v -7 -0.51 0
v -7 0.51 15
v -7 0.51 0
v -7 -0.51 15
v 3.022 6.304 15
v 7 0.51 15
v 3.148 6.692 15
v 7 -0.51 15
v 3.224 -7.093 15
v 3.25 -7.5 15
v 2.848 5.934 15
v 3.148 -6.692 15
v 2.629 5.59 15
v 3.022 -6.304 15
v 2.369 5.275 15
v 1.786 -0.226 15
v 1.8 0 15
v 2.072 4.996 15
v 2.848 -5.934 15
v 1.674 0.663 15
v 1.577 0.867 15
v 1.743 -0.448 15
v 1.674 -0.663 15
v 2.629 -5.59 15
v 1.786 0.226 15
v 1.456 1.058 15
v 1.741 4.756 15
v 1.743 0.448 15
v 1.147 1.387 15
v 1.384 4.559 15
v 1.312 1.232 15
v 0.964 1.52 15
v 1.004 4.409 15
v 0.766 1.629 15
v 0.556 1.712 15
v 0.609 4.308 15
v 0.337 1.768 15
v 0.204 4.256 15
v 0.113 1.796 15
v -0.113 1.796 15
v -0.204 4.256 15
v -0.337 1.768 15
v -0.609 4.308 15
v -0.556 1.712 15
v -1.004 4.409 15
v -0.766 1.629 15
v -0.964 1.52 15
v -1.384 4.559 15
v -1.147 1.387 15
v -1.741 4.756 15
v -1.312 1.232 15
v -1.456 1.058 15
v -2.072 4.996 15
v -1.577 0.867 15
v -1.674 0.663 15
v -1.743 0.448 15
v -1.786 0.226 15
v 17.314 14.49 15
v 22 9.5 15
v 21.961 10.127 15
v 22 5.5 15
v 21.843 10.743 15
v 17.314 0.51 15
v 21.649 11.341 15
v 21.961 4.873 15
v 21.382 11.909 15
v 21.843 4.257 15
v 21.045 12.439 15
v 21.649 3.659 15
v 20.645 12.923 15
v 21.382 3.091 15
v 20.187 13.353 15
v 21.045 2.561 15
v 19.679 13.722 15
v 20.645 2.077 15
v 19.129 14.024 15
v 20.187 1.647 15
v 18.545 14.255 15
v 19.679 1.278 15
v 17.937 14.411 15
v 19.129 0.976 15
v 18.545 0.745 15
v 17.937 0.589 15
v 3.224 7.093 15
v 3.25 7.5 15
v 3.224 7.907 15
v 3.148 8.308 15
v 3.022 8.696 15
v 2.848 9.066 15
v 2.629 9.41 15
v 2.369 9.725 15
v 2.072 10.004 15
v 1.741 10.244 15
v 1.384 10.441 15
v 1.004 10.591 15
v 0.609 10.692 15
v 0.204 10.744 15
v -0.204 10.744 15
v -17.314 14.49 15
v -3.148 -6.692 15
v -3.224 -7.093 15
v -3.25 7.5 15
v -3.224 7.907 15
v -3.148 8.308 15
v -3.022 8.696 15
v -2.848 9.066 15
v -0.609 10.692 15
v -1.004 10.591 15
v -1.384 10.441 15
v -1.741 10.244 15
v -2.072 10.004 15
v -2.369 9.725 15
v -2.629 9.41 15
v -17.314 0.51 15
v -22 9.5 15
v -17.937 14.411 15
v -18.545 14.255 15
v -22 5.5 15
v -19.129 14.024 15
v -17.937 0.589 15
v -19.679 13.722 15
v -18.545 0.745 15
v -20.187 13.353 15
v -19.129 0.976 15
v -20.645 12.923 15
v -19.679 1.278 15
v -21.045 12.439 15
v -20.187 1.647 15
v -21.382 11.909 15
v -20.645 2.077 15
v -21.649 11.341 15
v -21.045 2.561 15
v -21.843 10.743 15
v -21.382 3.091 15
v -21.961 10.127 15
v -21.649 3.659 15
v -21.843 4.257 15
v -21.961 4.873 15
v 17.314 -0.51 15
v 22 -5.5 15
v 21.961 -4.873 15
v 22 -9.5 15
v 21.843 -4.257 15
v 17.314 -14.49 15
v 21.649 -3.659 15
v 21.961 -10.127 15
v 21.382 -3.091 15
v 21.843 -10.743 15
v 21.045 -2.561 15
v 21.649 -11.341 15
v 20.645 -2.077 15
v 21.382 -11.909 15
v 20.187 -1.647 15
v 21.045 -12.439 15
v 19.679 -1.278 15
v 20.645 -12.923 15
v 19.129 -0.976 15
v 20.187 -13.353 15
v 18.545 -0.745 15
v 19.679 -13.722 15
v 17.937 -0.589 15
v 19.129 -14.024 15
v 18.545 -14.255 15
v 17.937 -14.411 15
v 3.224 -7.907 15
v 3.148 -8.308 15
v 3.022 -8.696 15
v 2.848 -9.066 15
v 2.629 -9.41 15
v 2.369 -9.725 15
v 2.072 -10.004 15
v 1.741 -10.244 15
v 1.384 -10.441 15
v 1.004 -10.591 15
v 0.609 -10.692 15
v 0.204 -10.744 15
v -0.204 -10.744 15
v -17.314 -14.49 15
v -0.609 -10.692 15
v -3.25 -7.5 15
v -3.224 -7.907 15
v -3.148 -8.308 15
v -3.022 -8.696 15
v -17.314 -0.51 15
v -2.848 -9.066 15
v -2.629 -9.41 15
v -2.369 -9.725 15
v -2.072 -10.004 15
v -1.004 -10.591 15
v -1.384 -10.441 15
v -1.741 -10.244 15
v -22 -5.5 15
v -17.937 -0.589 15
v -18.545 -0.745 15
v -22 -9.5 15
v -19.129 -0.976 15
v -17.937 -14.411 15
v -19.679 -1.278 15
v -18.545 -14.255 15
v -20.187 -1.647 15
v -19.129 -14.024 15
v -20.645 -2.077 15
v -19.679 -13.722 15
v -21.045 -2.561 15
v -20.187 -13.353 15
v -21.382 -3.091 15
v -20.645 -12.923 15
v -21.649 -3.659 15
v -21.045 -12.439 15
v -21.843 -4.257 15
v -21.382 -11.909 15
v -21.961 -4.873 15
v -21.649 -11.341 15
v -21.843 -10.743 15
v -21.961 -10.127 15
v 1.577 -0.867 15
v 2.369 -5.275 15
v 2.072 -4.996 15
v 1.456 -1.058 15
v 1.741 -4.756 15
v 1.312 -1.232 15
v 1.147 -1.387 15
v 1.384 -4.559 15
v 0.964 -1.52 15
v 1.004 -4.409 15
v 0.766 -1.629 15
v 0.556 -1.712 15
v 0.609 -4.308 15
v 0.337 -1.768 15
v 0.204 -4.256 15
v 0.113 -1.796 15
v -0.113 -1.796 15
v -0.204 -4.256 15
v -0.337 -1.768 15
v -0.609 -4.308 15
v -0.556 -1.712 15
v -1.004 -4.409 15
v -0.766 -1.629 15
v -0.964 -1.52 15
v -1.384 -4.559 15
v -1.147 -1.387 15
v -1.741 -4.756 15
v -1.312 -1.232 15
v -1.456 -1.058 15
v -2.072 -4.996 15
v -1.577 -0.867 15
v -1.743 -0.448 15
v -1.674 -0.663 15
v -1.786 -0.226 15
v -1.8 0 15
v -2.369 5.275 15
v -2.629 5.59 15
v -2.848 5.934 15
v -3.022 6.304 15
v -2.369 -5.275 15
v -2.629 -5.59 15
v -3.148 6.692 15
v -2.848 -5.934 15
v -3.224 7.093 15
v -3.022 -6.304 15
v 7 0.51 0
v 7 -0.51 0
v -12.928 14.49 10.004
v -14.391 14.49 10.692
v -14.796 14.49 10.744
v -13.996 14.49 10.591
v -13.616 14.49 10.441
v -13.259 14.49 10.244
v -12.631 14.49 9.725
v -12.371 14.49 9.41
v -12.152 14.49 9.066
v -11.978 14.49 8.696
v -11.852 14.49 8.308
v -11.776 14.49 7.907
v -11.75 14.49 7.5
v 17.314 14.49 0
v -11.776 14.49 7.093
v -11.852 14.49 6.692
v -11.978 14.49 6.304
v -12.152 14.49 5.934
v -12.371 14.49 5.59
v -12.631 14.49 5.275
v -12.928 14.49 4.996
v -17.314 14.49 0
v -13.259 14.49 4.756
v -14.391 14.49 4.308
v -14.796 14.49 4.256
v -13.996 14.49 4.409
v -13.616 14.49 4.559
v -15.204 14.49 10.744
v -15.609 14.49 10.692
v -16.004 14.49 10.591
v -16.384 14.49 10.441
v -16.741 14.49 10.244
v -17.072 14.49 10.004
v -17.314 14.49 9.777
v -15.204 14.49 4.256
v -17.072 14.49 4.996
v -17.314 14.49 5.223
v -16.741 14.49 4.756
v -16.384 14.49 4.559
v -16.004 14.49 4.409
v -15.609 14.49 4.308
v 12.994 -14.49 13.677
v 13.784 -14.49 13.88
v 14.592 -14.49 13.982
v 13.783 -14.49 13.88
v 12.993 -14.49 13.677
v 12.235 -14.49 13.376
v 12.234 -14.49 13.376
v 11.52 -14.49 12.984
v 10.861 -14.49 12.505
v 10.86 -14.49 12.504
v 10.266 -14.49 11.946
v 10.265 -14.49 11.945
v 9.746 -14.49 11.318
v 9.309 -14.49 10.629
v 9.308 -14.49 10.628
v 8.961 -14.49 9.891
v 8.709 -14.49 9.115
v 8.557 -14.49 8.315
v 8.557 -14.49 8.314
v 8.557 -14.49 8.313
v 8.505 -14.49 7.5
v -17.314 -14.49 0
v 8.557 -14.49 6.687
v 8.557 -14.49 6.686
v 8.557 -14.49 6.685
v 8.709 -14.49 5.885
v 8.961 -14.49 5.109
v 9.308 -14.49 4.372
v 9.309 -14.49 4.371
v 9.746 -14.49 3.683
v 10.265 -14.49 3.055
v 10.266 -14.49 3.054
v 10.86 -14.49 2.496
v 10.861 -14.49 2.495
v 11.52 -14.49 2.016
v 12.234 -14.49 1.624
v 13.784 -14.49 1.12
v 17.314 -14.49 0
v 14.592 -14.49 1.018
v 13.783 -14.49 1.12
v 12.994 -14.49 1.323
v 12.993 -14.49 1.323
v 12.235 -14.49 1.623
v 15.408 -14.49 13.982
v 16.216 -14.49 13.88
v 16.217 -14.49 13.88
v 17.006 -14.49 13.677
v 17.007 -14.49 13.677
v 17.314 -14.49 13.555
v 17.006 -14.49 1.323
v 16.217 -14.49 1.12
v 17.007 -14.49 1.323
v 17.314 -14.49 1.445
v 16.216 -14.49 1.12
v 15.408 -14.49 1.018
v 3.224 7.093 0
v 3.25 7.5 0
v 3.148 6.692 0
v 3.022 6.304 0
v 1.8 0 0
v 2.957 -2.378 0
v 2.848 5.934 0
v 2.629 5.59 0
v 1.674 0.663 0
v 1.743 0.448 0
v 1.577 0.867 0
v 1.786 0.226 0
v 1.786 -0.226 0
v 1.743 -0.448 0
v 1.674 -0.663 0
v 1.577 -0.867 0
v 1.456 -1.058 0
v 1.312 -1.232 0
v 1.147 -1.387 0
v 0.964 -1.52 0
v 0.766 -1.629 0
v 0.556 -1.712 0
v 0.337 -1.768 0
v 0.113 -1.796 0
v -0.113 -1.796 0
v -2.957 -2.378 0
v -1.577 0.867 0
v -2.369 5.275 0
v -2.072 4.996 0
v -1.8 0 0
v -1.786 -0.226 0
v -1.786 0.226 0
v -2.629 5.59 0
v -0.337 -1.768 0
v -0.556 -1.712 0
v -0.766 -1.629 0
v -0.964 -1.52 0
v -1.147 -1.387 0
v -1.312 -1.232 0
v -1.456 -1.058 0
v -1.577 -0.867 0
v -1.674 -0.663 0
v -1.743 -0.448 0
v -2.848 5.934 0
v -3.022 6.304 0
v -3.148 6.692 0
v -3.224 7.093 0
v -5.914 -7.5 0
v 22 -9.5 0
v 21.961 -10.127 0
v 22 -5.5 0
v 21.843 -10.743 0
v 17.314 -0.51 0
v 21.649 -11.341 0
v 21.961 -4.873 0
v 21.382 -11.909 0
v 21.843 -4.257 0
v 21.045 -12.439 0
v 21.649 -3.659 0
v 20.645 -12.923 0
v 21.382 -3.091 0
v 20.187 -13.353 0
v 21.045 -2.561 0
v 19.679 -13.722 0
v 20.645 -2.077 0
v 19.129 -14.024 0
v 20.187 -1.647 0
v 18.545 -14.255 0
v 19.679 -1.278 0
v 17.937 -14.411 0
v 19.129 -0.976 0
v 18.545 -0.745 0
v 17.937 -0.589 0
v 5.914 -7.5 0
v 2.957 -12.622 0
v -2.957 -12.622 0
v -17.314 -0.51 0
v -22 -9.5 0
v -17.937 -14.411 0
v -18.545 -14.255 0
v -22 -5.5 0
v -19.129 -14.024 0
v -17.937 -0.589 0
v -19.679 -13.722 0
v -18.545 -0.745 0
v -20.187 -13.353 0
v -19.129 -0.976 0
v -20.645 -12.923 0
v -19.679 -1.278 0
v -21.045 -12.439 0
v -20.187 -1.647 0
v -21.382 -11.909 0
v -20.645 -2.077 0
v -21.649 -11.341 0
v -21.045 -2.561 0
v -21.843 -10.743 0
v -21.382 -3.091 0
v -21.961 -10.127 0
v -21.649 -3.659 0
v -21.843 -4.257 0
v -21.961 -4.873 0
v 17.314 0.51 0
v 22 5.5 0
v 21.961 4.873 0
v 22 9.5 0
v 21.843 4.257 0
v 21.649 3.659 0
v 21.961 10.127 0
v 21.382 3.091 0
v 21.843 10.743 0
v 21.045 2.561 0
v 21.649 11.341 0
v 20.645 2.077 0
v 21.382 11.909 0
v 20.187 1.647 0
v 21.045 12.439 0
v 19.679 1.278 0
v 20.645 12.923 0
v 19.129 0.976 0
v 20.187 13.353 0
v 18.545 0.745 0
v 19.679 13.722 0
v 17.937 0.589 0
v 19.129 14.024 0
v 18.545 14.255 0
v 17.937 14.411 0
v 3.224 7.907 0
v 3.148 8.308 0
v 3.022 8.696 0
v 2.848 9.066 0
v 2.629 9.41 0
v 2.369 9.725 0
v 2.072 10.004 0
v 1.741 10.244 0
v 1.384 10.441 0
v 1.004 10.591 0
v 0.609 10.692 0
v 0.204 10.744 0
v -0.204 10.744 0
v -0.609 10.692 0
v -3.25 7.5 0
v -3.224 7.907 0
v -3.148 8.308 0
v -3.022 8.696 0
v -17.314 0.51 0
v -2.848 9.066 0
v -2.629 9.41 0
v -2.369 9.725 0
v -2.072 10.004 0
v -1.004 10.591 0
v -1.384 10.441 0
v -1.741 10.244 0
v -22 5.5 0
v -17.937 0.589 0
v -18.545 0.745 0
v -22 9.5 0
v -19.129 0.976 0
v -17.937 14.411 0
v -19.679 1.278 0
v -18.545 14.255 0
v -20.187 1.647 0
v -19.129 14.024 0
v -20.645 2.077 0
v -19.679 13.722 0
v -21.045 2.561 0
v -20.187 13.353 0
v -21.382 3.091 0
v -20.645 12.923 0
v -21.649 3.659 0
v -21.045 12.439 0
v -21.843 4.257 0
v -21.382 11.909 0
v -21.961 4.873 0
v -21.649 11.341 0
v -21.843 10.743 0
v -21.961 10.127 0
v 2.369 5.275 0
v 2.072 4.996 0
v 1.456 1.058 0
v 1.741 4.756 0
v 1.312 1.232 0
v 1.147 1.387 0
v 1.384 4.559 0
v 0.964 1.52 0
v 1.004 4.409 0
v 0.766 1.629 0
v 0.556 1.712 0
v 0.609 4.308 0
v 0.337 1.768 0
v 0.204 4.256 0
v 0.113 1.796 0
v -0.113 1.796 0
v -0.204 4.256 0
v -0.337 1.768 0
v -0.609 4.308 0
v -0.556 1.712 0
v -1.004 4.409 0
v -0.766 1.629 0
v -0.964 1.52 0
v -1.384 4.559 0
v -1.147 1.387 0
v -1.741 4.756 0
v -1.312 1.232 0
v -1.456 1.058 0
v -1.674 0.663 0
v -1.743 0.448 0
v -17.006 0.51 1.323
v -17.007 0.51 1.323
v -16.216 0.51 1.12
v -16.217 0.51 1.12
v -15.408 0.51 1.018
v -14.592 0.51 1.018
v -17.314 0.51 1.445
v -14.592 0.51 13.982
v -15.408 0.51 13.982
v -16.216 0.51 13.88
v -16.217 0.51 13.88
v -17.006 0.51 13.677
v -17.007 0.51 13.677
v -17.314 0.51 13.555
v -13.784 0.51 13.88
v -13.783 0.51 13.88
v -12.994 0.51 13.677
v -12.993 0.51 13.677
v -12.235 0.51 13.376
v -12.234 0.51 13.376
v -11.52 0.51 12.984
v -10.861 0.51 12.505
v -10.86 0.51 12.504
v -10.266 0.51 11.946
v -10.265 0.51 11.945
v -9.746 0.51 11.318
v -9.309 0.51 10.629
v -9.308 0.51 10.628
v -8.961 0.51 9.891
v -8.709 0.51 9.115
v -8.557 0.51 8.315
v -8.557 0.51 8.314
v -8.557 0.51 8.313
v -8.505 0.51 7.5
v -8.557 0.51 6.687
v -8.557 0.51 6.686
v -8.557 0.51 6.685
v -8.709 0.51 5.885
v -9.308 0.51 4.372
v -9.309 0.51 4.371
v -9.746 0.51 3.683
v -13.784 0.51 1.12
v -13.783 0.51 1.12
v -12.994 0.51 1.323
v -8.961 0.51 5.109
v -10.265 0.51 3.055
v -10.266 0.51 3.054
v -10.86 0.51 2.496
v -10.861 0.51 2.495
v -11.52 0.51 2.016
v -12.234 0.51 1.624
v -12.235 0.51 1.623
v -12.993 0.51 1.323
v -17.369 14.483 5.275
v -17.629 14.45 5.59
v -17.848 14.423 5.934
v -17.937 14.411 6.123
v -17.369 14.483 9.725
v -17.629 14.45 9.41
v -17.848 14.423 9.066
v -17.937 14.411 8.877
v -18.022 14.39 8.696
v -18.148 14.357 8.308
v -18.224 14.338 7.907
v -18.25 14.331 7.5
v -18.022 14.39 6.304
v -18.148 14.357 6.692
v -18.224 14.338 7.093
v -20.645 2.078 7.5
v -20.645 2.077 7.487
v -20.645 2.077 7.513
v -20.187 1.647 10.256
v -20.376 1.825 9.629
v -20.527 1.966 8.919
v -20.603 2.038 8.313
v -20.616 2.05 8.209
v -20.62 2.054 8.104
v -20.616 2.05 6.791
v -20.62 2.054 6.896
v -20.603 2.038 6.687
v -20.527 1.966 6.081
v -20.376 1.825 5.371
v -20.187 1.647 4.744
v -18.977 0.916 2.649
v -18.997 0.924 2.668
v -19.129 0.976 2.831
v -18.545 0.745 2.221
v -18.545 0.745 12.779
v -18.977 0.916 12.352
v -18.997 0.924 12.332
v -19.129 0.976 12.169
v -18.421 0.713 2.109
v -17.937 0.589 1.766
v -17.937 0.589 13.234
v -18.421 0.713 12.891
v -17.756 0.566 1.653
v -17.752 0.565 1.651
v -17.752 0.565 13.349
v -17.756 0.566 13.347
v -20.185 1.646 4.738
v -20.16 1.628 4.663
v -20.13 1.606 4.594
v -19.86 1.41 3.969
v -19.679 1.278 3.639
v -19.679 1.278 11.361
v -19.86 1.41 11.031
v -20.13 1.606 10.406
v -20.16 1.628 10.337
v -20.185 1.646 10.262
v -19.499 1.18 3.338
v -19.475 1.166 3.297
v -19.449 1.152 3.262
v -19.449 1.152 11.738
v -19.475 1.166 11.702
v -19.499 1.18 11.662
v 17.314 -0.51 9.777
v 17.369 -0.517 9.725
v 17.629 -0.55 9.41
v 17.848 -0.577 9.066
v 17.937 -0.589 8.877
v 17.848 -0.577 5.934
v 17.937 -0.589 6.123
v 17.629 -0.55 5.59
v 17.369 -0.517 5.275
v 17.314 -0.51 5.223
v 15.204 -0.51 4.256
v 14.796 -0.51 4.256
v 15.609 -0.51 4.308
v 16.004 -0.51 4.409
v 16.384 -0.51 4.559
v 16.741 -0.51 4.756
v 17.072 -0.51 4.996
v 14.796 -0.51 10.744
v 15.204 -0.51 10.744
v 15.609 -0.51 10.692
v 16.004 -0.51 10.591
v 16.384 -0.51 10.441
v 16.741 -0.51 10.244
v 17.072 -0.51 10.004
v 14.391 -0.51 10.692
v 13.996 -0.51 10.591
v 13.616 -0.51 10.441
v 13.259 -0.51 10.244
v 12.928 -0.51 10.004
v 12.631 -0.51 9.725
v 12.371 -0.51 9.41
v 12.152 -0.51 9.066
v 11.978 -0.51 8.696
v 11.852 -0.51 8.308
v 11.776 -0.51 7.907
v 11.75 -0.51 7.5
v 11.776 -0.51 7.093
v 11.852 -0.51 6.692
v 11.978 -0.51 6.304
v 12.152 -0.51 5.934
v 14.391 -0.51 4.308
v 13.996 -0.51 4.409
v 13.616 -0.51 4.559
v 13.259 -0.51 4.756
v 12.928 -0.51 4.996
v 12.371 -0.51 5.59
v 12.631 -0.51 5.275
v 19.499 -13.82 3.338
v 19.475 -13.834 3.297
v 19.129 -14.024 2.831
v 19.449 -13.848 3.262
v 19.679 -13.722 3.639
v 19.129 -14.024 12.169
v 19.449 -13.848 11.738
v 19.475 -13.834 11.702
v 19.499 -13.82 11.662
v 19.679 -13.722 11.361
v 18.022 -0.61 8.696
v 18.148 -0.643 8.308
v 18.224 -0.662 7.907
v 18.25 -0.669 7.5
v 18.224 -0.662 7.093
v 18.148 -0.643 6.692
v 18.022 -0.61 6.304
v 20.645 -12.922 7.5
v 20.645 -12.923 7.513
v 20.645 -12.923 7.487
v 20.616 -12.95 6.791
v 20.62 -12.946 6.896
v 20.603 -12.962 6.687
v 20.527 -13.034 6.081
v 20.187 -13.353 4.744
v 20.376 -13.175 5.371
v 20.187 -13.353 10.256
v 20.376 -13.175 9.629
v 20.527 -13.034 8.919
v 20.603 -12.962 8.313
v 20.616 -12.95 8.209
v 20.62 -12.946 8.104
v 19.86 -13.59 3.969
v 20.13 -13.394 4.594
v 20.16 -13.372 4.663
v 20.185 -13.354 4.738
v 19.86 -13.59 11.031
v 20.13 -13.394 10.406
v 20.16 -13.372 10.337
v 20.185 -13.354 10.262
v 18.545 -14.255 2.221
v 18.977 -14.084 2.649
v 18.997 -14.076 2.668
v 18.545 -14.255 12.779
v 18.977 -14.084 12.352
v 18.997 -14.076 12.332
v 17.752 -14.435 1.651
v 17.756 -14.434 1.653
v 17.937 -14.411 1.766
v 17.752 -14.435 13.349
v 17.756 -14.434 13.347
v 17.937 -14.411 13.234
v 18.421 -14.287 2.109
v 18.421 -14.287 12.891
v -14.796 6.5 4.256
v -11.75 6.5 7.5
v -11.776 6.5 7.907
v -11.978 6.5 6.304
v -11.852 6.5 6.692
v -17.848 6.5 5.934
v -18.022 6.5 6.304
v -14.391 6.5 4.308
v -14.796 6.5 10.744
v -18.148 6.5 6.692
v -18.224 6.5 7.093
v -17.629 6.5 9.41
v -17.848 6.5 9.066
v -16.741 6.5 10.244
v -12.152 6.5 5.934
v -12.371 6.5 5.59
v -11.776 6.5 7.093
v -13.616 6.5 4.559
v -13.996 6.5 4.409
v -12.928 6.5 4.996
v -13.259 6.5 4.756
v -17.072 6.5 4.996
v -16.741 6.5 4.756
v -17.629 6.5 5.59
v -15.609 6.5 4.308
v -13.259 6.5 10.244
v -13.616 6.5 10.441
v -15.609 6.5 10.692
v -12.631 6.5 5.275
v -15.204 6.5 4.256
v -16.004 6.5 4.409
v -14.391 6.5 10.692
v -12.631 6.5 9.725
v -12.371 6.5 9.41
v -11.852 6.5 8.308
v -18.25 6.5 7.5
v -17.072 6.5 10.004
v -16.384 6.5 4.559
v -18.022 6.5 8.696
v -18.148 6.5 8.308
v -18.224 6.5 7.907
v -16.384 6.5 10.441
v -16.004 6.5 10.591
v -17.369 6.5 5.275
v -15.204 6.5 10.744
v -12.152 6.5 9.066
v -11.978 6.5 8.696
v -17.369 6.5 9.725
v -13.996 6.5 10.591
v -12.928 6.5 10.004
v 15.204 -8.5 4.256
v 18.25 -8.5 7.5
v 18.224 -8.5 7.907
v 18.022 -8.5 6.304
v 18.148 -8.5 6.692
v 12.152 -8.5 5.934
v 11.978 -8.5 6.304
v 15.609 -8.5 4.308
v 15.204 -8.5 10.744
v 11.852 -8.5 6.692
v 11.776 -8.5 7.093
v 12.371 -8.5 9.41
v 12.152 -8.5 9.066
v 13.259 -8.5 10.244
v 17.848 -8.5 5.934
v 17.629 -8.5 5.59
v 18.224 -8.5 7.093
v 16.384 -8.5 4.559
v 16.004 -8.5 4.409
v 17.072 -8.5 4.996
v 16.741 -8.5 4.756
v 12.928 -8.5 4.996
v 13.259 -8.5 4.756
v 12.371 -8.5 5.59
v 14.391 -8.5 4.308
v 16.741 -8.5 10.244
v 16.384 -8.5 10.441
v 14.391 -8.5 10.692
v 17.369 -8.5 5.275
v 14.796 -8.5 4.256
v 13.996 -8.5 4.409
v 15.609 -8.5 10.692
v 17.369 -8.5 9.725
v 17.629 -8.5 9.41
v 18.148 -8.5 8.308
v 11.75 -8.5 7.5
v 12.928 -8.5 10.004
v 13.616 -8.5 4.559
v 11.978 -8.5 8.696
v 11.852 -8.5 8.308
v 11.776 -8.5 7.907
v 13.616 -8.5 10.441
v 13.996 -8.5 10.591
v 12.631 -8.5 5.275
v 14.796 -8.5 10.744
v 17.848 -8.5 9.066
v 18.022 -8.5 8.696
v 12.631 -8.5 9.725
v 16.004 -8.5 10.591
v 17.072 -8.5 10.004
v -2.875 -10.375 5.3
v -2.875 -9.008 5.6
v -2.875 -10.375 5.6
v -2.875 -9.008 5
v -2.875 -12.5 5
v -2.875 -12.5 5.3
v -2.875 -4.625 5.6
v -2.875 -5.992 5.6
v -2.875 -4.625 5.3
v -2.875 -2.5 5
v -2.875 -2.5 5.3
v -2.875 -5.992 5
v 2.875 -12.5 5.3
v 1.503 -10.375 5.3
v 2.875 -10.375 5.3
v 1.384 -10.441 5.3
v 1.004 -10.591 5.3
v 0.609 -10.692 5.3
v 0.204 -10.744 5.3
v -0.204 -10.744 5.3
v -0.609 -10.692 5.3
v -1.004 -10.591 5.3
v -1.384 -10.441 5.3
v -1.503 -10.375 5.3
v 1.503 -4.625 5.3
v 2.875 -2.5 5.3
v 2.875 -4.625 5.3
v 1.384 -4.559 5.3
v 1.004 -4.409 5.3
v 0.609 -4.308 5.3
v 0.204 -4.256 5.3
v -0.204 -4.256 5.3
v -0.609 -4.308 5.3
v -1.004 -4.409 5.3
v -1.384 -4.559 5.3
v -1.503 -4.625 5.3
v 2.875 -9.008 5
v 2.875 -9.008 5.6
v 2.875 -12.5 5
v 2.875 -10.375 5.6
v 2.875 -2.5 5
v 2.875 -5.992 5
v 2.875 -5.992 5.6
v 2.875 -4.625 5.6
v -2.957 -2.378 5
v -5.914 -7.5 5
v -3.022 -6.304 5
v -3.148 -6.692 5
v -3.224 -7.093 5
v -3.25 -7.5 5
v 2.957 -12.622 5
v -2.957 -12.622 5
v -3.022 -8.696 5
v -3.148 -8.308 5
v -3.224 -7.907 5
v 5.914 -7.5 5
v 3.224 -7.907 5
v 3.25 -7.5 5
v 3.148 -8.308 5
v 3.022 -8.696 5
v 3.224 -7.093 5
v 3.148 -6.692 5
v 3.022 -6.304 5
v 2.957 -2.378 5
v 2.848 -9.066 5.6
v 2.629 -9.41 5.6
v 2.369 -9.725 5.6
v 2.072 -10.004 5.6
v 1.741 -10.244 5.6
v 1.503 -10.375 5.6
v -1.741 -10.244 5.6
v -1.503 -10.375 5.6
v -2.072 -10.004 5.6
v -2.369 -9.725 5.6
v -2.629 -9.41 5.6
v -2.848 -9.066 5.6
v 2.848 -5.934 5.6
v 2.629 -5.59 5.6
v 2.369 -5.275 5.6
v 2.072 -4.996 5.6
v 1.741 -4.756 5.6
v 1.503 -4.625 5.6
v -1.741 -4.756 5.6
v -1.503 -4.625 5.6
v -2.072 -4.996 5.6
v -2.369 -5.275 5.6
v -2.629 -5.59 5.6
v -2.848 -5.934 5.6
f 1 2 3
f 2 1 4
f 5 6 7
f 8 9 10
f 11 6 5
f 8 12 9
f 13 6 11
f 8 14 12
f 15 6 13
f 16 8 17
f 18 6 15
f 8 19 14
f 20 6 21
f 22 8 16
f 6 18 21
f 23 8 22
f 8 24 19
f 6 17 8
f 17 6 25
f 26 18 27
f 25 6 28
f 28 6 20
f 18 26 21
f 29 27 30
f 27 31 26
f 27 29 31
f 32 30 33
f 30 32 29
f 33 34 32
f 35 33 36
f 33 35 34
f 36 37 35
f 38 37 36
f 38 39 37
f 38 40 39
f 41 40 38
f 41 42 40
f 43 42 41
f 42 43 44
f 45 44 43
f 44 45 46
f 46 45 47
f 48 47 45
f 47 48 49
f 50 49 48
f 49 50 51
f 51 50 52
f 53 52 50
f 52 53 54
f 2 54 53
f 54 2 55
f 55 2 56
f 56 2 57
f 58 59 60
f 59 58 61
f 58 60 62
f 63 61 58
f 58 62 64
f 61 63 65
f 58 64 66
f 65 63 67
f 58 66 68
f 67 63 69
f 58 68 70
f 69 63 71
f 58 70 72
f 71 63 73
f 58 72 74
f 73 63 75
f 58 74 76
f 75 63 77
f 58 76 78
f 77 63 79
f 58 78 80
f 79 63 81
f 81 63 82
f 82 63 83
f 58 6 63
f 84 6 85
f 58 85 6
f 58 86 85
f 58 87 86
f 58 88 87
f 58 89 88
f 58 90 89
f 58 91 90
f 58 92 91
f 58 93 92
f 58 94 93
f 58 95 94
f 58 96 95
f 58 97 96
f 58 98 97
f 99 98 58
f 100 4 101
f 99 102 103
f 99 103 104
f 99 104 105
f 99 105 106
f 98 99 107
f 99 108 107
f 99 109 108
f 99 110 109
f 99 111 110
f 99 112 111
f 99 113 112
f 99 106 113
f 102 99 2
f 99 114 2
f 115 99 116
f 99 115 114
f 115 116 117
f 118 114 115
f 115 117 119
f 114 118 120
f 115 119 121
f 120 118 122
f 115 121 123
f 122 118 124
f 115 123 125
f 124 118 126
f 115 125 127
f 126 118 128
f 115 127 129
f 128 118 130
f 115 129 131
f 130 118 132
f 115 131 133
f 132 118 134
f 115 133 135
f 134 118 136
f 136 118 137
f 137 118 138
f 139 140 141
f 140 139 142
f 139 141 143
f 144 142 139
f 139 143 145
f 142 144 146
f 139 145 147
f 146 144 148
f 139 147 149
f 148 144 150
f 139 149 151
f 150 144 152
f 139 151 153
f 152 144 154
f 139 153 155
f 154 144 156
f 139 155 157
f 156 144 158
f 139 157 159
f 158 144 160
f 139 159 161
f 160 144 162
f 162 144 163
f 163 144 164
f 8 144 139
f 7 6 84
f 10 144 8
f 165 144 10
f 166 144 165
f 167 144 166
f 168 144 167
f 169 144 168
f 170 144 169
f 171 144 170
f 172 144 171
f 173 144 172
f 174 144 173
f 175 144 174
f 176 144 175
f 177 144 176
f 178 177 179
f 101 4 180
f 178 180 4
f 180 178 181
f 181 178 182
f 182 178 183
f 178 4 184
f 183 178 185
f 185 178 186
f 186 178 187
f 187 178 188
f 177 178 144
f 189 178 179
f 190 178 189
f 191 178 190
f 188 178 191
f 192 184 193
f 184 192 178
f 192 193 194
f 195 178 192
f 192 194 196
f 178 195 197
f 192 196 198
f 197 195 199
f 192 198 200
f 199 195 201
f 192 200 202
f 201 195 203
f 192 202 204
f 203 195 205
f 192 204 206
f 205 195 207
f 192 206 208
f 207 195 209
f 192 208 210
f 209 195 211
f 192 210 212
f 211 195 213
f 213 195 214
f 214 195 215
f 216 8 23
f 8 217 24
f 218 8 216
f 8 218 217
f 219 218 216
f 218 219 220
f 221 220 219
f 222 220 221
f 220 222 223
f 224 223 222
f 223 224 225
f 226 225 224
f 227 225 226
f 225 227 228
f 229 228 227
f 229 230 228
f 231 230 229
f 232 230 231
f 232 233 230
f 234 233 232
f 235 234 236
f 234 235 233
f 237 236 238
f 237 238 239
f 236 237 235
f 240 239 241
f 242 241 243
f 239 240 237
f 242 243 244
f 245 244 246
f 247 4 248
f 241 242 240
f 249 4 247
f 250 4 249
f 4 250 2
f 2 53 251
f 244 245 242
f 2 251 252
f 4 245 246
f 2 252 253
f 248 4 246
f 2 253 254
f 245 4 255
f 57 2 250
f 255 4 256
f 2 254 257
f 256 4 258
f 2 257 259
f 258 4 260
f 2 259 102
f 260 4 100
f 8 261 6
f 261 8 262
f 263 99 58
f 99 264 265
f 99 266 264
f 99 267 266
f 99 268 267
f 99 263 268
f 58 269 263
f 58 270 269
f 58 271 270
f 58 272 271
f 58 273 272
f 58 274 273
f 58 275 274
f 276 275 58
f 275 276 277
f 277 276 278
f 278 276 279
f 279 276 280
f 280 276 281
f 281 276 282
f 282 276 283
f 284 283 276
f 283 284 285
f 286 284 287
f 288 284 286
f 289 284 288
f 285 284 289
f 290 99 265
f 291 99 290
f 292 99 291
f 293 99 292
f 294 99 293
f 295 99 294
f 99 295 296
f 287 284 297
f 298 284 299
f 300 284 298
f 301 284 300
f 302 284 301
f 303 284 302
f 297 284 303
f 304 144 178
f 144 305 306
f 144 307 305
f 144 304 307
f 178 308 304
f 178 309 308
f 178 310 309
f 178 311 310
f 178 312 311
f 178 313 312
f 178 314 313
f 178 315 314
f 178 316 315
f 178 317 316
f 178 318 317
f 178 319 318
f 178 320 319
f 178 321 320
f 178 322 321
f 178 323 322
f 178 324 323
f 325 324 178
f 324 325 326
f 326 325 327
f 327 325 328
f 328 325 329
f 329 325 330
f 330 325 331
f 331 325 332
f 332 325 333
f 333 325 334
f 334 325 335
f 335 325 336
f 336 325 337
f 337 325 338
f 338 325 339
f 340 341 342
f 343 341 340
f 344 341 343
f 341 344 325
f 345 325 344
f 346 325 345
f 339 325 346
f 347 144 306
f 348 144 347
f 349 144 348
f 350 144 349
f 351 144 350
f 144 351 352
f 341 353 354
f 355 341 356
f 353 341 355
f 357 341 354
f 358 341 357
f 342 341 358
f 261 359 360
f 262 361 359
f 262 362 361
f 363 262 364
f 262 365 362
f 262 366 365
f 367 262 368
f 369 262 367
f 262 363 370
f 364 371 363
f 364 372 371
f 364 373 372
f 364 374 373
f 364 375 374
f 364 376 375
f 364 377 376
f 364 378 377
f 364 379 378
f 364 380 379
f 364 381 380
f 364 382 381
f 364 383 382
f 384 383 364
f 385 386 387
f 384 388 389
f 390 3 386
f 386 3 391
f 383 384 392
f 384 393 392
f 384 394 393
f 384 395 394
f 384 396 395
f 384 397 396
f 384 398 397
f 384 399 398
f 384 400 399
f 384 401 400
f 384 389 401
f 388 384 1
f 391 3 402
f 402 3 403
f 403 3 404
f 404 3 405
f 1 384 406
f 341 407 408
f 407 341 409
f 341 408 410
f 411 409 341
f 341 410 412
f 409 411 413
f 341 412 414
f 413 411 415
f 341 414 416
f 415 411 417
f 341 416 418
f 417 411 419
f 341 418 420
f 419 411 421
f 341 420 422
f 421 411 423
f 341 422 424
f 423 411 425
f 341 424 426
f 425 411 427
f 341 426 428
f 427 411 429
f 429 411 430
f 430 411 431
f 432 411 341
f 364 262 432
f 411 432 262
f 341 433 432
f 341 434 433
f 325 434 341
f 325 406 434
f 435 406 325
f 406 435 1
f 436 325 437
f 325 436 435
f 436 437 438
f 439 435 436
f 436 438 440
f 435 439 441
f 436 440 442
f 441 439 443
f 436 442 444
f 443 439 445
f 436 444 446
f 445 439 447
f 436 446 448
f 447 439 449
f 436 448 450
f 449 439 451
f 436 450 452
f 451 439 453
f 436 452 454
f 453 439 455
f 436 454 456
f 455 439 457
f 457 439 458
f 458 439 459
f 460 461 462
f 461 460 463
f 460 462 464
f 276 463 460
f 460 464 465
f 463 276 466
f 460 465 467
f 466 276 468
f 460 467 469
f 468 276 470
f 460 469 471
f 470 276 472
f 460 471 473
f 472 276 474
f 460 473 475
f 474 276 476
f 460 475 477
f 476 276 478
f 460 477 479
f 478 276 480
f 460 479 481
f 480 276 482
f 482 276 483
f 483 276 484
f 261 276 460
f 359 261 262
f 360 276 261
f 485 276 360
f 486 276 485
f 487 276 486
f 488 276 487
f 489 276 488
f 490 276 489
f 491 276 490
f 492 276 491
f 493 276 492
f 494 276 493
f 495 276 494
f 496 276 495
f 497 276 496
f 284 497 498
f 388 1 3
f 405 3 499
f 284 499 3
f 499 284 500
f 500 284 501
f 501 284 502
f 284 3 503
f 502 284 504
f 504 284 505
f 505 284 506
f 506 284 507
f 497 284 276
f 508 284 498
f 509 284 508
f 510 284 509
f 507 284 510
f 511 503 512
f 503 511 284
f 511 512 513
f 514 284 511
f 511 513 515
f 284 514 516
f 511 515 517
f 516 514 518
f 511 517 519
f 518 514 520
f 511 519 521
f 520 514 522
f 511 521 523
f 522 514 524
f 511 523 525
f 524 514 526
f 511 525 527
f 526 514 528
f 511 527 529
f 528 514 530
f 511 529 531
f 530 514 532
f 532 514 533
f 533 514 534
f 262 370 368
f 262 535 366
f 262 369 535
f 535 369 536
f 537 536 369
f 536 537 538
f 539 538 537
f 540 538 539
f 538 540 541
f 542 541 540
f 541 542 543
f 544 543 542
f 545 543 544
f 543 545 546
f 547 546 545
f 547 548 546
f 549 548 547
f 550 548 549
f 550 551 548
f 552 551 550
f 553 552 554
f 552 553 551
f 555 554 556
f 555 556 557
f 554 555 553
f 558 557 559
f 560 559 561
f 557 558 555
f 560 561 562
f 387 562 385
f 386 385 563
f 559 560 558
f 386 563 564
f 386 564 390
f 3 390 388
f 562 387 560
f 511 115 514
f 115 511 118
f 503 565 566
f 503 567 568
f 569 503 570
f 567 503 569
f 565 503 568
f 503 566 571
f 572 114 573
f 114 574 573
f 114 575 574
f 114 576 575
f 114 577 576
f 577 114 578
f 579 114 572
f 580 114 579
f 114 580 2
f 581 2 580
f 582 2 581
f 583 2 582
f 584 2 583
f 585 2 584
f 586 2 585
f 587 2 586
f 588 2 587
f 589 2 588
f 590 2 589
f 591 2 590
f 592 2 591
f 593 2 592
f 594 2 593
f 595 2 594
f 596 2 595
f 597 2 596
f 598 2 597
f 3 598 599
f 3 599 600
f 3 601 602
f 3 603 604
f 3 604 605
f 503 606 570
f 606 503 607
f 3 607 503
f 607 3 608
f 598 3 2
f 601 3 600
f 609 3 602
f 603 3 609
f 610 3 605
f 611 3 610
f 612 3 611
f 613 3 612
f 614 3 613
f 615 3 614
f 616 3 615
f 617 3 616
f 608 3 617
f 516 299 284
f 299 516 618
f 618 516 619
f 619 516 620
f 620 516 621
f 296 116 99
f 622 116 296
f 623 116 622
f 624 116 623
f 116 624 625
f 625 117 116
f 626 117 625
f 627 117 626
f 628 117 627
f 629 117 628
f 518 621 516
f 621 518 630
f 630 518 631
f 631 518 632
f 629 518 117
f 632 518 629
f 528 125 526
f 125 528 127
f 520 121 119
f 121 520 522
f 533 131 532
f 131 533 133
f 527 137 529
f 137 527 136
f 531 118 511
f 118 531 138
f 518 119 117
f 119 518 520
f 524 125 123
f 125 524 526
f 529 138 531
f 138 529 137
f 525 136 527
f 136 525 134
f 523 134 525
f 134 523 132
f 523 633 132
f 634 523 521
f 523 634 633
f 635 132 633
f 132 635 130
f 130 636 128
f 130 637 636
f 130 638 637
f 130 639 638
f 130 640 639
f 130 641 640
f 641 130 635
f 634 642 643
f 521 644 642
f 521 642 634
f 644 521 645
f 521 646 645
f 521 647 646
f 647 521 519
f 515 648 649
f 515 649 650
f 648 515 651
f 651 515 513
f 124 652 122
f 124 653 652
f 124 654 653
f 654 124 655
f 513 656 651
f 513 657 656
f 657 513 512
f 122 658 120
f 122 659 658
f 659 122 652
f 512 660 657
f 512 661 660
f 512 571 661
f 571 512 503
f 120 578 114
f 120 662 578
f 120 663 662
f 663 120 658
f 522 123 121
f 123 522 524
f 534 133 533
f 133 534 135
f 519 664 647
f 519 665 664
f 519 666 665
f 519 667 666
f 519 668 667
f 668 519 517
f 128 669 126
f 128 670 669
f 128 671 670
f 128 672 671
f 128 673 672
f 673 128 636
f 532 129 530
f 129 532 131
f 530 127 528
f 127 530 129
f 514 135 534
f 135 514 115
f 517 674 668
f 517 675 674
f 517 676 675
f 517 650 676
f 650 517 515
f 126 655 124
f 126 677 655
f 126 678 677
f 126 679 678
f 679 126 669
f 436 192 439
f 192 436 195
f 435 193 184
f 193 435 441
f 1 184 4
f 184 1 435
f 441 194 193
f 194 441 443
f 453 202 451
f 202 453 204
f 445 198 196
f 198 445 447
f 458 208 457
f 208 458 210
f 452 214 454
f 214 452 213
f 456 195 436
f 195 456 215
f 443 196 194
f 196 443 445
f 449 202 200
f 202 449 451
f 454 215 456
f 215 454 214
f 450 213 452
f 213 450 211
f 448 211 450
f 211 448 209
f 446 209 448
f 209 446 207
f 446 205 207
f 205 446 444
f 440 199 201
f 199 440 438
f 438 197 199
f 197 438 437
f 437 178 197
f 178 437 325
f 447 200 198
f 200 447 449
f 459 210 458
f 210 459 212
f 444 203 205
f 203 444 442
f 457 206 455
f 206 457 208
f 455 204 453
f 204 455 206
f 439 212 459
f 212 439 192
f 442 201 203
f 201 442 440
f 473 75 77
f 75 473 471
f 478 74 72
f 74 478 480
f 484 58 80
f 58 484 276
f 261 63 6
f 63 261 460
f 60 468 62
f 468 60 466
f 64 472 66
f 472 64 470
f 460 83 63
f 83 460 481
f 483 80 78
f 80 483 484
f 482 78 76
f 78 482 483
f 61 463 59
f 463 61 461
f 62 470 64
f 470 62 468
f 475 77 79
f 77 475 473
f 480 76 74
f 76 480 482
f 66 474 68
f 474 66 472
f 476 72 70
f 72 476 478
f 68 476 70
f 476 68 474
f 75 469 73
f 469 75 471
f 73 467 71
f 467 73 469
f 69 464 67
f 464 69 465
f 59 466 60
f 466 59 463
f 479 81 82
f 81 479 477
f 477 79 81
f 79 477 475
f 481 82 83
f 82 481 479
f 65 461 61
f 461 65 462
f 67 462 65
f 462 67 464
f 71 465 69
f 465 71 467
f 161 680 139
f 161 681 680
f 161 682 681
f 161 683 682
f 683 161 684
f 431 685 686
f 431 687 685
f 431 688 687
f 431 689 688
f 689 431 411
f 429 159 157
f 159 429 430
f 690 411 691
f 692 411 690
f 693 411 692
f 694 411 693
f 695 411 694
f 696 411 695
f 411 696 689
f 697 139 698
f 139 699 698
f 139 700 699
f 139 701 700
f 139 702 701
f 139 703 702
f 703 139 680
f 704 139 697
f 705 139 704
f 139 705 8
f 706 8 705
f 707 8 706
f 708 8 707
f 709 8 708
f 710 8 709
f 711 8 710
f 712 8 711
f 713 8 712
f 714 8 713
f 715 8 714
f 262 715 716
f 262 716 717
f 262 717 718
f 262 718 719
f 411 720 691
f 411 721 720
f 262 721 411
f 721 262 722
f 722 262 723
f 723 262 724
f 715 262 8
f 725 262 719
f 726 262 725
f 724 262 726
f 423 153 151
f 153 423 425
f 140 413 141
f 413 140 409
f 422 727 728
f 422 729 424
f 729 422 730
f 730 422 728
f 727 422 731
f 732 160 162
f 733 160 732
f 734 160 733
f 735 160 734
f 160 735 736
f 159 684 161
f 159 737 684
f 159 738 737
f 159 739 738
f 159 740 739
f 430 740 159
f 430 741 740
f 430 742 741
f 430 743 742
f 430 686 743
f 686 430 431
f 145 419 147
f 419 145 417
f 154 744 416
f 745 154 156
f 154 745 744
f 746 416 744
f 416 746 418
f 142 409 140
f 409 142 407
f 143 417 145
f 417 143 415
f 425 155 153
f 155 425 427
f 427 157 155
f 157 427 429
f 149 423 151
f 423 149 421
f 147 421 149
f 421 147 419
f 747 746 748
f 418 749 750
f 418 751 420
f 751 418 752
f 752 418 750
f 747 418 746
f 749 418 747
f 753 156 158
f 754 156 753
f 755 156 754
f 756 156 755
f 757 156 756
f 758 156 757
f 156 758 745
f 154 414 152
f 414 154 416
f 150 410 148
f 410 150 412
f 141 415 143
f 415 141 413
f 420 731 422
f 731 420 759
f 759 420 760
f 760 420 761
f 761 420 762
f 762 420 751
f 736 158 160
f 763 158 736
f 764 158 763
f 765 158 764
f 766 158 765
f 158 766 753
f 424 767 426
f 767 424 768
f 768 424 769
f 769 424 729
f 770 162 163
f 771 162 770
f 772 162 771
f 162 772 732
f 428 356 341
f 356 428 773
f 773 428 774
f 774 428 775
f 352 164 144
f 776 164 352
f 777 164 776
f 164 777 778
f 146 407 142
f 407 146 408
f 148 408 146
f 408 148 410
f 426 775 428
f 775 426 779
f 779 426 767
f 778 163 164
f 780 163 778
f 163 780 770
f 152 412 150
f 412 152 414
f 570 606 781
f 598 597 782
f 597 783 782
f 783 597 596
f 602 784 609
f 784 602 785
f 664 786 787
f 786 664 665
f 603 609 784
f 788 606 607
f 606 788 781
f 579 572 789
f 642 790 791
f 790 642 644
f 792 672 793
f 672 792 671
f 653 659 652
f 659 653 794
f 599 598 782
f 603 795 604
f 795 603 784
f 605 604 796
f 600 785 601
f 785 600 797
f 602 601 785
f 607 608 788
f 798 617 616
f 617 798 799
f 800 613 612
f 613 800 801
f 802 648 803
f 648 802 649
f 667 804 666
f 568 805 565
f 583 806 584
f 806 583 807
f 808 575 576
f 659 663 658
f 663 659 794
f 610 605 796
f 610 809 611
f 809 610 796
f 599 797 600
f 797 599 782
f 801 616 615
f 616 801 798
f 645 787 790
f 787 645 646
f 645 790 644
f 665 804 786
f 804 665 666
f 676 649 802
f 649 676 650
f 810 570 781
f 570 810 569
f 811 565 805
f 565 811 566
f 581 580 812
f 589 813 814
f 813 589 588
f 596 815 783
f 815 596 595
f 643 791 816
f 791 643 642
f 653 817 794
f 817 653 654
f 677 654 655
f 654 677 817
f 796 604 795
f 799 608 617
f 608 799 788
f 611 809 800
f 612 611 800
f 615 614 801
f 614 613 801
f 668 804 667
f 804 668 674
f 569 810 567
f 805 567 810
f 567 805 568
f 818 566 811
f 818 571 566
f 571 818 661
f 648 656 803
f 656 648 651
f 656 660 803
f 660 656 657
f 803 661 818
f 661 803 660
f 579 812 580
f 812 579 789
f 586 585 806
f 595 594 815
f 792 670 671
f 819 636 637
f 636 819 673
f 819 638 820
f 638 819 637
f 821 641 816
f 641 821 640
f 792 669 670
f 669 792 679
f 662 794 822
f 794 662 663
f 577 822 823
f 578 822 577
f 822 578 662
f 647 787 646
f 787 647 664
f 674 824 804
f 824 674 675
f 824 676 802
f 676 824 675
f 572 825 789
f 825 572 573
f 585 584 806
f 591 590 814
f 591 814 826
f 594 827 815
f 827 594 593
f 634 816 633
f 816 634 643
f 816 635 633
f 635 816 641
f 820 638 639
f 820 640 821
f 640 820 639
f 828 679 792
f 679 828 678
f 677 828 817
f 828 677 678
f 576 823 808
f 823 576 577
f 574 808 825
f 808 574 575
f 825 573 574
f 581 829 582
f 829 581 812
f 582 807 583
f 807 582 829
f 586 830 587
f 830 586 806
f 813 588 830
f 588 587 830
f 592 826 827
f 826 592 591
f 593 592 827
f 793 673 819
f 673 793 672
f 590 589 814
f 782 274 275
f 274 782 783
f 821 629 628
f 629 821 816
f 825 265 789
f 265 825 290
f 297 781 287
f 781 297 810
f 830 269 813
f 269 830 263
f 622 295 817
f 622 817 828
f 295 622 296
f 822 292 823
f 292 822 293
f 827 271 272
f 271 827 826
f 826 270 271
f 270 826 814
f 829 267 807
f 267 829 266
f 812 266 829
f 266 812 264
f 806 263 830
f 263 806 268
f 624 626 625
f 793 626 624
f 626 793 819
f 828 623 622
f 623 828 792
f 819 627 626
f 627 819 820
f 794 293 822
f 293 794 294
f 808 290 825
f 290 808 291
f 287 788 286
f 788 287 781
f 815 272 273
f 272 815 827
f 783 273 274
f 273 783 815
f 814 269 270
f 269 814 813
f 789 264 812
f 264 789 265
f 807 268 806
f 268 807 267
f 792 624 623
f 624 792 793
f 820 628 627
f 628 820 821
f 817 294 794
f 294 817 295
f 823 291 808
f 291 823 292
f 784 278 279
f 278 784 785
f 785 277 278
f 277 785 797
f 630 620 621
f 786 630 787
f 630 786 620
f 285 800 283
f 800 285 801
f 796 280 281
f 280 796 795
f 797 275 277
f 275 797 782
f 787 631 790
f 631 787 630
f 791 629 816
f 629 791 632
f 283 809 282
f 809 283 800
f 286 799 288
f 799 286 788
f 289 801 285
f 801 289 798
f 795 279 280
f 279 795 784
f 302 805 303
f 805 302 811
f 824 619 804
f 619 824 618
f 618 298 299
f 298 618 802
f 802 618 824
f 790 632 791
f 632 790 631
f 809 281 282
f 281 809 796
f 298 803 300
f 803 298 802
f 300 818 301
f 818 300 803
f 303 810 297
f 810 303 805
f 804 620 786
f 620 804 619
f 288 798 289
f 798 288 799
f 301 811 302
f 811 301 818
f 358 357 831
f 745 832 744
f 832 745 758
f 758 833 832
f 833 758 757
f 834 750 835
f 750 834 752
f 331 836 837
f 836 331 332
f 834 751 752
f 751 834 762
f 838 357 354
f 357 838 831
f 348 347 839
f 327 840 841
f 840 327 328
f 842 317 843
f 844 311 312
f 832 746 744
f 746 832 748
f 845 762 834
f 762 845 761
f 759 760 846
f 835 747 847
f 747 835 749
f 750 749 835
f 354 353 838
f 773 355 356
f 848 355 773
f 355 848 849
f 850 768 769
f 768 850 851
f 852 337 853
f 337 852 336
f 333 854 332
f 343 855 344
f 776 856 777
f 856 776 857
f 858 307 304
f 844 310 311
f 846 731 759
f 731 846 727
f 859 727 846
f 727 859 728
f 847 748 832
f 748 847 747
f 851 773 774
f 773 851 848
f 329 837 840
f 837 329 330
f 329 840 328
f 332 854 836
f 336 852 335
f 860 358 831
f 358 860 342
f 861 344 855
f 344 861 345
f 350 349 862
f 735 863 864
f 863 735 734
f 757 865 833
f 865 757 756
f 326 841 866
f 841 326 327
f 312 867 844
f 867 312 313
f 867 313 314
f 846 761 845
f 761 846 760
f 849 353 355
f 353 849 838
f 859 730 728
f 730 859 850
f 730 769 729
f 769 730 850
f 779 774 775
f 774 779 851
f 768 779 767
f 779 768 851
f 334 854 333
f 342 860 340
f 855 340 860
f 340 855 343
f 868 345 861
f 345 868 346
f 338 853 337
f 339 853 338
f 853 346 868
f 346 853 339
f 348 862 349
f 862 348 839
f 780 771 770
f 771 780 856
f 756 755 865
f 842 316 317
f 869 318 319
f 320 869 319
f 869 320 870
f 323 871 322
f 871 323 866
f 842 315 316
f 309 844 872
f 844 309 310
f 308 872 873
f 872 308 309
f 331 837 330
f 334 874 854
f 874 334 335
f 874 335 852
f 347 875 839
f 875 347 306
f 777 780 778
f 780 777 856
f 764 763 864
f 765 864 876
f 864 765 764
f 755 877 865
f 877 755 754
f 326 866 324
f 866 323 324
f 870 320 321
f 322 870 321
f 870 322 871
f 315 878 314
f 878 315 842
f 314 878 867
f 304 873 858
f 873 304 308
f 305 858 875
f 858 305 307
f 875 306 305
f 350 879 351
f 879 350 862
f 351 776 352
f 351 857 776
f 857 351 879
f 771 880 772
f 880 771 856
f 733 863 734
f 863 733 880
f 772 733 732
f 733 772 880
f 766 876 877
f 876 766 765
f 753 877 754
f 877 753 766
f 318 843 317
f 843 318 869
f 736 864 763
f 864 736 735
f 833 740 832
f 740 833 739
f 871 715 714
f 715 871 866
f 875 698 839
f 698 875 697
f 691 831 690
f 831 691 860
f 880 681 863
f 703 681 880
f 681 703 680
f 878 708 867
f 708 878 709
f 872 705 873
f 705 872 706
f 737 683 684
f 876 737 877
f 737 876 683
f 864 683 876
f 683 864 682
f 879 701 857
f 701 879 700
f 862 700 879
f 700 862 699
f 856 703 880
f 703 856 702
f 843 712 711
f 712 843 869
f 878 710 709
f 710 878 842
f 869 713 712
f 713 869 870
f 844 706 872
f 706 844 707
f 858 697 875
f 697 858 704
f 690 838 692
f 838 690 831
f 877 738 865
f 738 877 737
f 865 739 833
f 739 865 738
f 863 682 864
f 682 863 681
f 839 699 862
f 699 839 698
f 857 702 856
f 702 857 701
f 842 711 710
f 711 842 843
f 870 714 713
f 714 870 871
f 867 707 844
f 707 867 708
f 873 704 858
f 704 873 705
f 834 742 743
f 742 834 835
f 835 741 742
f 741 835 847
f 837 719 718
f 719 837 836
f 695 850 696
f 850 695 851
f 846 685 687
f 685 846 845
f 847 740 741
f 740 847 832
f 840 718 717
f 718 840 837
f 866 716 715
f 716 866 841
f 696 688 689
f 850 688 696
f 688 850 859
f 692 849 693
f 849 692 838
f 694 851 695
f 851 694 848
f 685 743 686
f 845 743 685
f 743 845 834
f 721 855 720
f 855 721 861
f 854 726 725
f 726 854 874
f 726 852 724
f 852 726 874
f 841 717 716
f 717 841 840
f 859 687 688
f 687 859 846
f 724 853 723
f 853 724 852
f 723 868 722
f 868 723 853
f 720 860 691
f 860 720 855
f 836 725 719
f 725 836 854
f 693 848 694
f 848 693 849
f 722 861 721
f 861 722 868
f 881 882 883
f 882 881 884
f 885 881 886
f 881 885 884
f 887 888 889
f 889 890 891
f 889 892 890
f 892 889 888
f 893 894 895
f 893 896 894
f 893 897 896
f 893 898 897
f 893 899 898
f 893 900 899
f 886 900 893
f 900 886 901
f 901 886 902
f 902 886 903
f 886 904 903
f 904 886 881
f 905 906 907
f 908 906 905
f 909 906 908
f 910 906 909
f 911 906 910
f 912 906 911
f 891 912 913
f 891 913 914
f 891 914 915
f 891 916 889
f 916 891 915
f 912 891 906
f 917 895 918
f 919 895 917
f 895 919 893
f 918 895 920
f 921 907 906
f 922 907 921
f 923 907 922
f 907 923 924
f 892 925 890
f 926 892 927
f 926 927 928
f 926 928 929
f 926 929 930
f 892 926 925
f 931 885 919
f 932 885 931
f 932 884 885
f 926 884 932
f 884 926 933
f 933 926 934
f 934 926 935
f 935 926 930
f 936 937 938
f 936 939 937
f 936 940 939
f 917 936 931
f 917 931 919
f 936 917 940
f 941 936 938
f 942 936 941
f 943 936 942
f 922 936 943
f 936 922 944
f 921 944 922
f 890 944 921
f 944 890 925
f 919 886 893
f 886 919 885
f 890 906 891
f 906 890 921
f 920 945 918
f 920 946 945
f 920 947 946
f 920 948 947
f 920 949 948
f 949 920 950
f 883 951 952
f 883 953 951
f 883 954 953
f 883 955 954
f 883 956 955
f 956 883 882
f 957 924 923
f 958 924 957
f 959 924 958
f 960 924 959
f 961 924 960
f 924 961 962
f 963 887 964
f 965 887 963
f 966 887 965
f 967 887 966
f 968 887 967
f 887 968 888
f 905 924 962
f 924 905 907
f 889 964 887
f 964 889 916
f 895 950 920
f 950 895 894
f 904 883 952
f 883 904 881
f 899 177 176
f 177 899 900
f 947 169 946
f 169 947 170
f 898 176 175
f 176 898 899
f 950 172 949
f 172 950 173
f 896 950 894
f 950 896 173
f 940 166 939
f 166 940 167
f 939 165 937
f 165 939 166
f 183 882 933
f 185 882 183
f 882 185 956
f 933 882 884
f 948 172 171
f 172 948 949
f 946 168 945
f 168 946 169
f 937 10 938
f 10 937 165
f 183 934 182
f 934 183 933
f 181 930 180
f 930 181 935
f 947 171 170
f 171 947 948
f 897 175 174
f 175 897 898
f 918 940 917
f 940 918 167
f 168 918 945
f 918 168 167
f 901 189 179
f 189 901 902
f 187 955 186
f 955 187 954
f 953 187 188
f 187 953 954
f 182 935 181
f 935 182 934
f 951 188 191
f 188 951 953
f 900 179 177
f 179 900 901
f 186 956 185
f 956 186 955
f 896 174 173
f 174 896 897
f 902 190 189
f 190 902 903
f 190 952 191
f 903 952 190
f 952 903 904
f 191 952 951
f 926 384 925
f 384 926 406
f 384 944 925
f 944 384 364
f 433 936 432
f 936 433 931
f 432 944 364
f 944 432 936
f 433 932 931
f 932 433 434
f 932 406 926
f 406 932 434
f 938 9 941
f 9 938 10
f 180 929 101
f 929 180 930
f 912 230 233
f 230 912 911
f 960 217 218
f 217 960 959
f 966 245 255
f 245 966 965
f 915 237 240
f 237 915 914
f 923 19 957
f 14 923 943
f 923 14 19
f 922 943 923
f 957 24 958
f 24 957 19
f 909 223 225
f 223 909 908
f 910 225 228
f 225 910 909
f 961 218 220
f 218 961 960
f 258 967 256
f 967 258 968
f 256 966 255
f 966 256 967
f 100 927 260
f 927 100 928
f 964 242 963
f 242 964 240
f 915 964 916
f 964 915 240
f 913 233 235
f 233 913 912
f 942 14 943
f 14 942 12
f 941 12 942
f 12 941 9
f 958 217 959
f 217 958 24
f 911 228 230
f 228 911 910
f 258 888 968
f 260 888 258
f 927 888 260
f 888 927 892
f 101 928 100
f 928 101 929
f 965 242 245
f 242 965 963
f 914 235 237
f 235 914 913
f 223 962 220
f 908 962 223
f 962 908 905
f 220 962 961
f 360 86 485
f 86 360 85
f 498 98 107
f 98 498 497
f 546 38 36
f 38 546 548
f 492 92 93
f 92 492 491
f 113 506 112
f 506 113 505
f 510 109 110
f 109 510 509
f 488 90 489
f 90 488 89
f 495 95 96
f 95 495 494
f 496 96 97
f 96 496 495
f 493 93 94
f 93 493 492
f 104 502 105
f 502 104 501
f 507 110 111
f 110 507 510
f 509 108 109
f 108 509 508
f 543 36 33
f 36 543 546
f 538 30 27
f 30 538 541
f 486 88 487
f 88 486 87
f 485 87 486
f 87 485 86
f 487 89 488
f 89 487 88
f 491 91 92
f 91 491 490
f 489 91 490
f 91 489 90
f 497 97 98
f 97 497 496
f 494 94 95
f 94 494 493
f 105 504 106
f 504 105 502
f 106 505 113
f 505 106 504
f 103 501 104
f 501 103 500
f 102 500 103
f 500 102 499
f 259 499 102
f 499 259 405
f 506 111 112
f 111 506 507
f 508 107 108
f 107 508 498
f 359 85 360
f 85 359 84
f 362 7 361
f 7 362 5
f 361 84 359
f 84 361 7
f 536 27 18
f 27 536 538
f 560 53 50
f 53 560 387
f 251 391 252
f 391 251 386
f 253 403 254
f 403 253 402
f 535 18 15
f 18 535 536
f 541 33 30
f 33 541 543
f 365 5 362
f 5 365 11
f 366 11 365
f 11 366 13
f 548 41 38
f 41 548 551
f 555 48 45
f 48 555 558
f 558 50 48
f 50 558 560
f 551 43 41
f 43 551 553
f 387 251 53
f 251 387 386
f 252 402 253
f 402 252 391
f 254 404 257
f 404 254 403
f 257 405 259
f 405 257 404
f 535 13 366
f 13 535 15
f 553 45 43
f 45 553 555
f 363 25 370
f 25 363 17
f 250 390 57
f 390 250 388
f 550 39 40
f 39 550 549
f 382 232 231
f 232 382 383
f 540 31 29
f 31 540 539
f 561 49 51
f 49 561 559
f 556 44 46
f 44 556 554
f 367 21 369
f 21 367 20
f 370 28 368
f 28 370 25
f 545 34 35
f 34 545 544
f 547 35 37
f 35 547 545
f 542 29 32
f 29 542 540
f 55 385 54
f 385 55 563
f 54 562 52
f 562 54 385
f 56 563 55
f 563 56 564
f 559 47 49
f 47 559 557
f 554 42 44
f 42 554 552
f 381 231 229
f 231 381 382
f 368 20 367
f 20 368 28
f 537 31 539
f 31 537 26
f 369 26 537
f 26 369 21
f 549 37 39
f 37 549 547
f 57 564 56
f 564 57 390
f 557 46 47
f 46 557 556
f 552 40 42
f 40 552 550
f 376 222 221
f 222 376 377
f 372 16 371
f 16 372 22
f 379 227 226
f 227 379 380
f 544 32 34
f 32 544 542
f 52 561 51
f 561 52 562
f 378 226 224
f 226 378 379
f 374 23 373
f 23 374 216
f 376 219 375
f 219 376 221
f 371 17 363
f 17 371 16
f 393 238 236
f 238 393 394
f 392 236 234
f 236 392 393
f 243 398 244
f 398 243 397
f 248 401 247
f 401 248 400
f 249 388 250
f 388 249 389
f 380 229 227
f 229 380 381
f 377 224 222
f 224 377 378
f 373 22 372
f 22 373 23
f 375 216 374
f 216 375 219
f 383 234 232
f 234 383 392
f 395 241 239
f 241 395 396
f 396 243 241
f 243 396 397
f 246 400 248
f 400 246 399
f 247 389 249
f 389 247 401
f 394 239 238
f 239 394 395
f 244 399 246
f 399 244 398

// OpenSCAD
$fn = 50;


difference() {
	union() {
		hull() {
			translate(v = [-2.0000000000, 9.5000000000, 0]) {
				cylinder(h = 15, r = 5);
			}
			translate(v = [2.0000000000, 9.5000000000, 0]) {
				cylinder(h = 15, r = 5);
			}
			translate(v = [-2.0000000000, -9.5000000000, 0]) {
				cylinder(h = 15, r = 5);
			}
			translate(v = [2.0000000000, -9.5000000000, 0]) {
				cylinder(h = 15, r = 5);
			}
		}
		translate(v = [-7.5000000000, 7.5000000000, 0]) {
			hull() {
				translate(v = [-9.5000000000, 2.0000000000, 0]) {
					cylinder(h = 15, r = 5);
				}
				translate(v = [9.5000000000, 2.0000000000, 0]) {
					cylinder(h = 15, r = 5);
				}
				translate(v = [-9.5000000000, -2.0000000000, 0]) {
					cylinder(h = 15, r = 5);
				}
				translate(v = [9.5000000000, -2.0000000000, 0]) {
					cylinder(h = 15, r = 5);
				}
			}
		}
		translate(v = [-7.5000000000, -7.5000000000, 0]) {
			hull() {
				translate(v = [-9.5000000000, 2.0000000000, 0]) {
					cylinder(h = 15, r = 5);
				}
				translate(v = [9.5000000000, 2.0000000000, 0]) {
					cylinder(h = 15, r = 5);
				}
				translate(v = [-9.5000000000, -2.0000000000, 0]) {
					cylinder(h = 15, r = 5);
				}
				translate(v = [9.5000000000, -2.0000000000, 0]) {
					cylinder(h = 15, r = 5);
				}
			}
		}
		translate(v = [7.5000000000, 7.5000000000, 0]) {
			hull() {
				translate(v = [-9.5000000000, 2.0000000000, 0]) {
					cylinder(h = 15, r = 5);
				}
				translate(v = [9.5000000000, 2.0000000000, 0]) {
					cylinder(h = 15, r = 5);
				}
				translate(v = [-9.5000000000, -2.0000000000, 0]) {
					cylinder(h = 15, r = 5);
				}
				translate(v = [9.5000000000, -2.0000000000, 0]) {
					cylinder(h = 15, r = 5);
				}
			}
		}
		translate(v = [7.5000000000, -7.5000000000, 0]) {
			hull() {
				translate(v = [-9.5000000000, 2.0000000000, 0]) {
					cylinder(h = 15, r = 5);
				}
				translate(v = [9.5000000000, 2.0000000000, 0]) {
					cylinder(h = 15, r = 5);
				}
				translate(v = [-9.5000000000, -2.0000000000, 0]) {
					cylinder(h = 15, r = 5);
				}
				translate(v = [9.5000000000, -2.0000000000, 0]) {
					cylinder(h = 15, r = 5);
				}
			}
		}
	}
	union() {
		translate(v = [-15.0000000000, 0.5000000000, 7.5000000000]) {
			rotate(a = [90, 0, 0]) {
				difference() {
					union() {
						#translate(v = [0, 0, -14.0000000000]) {
							cylinder(h = 14, r = 2.2500000000);
						}
						#translate(v = [0, 0, -6]) {
							cylinder(h = 6, r1 = 3.2500000000, r2 = 6.5000000000);
						}
						#translate(v = [0, 0, -14.0000000000]) {
							cylinder(h = 14, r = 3.2500000000);
						}
						#translate(v = [0, 0, -14.0000000000]) {
							cylinder(h = 14, r = 2.2500000000);
						}
					}
					union();
				}
			}
		}
		translate(v = [15.0000000000, -14.5000000000, 7.5000000000]) {
			rotate(a = [90, 0, 0]) {
				difference() {
					union() {
						#translate(v = [0, 0, -14.0000000000]) {
							cylinder(h = 14, r = 2.2500000000);
						}
						#translate(v = [0, 0, -6]) {
							cylinder(h = 6, r1 = 3.2500000000, r2 = 6.5000000000);
						}
						#translate(v = [0, 0, -14.0000000000]) {
							cylinder(h = 14, r = 3.2500000000);
						}
						#translate(v = [0, 0, -14.0000000000]) {
							cylinder(h = 14, r = 2.2500000000);
						}
					}
					union();
				}
			}
		}
		translate(v = [0.0000000000, -7.5000000000, 0]) {
			rotate(a = [0, 0, 0]) {
				difference() {
					union() {
						#translate(v = [-2.8750000000, -5.0000000000, -0.3000000000]) {
							cube(size = [5.7500000000, 10, 0.3000000000]);
						}
						#translate(v = [-2.8750000000, -2.8750000000, -0.6000000000]) {
							cube(size = [5.7500000000, 5.7500000000, 0.3000000000]);
						}
						#translate(v = [-2.8750000000, -5.0000000000, 5]) {
							cube(size = [5.7500000000, 10, 0.3000000000]);
						}
						#translate(v = [-2.8750000000, -2.8750000000, 5.3000000000]) {
							cube(size = [5.7500000000, 5.7500000000, 0.3000000000]);
						}
						#translate(v = [0, 0, -100.0000000000]) {
							cylinder(h = 200, r = 3.2500000000);
						}
						#linear_extrude(height = 5) {
							polygon(points = [[5.9142500000, 0.0000000000], [2.9571250000, 5.1218907443], [-2.9571250000, 5.1218907443], [-5.9142500000, 0.0000000000], [-2.9571250000, -5.1218907443], [2.9571250000, -5.1218907443]]);
						}
						#translate(v = [-2.8750000000, -5.0000000000, -0.3000000000]) {
							cube(size = [5.7500000000, 10, 0.3000000000]);
						}
						#translate(v = [-2.8750000000, -2.8750000000, -0.6000000000]) {
							cube(size = [5.7500000000, 5.7500000000, 0.3000000000]);
						}
						#translate(v = [-2.8750000000, -5.0000000000, 5]) {
							cube(size = [5.7500000000, 10, 0.3000000000]);
						}
						#translate(v = [-2.8750000000, -2.8750000000, 5.3000000000]) {
							cube(size = [5.7500000000, 5.7500000000, 0.3000000000]);
						}
						#translate(v = [0, 0, -100.0000000000]) {
							cylinder(h = 200, r = 3.2500000000);
						}
						#translate(v = [-2.8750000000, -5.0000000000, -0.3000000000]) {
							cube(size = [5.7500000000, 10, 0.3000000000]);
						}
						#translate(v = [-2.8750000000, -2.8750000000, -0.6000000000]) {
							cube(size = [5.7500000000, 5.7500000000, 0.3000000000]);
						}
						#translate(v = [-2.8750000000, -5.0000000000, 5]) {
							cube(size = [5.7500000000, 10, 0.3000000000]);
						}
						#translate(v = [-2.8750000000, -2.8750000000, 5.3000000000]) {
							cube(size = [5.7500000000, 5.7500000000, 0.3000000000]);
						}
						#translate(v = [0, 0, -100.0000000000]) {
							cylinder(h = 200, r = 3.2500000000);
						}
					}
					union();
				}
			}
		}
		translate(v = [0.0000000000, -7.5000000000, 0]) {
			translate(v = [0, 0, -100]) {
				cylinder(h = 200, r = 3.2500000000);
			}
		}
		translate(v = [0.0000000000, 7.5000000000, 0]) {
			translate(v = [0, 0, -100]) {
				cylinder(h = 200, r = 3.2500000000);
			}
		}
		translate(v = [0.0000000000, -7.5000000000, 0]) {
			translate(v = [0, 0, -100]) {
				cylinder(h = 200, r = 1.8000000000);
			}
		}
		translate(v = [0, 0, -100]) {
			cylinder(h = 200, r = 1.8000000000);
		}
		translate(v = [0.0000000000, 7.5000000000, 0]) {
			translate(v = [0, 0, -100]) {
				cylinder(h = 200, r = 1.8000000000);
			}
		}
	}
}
